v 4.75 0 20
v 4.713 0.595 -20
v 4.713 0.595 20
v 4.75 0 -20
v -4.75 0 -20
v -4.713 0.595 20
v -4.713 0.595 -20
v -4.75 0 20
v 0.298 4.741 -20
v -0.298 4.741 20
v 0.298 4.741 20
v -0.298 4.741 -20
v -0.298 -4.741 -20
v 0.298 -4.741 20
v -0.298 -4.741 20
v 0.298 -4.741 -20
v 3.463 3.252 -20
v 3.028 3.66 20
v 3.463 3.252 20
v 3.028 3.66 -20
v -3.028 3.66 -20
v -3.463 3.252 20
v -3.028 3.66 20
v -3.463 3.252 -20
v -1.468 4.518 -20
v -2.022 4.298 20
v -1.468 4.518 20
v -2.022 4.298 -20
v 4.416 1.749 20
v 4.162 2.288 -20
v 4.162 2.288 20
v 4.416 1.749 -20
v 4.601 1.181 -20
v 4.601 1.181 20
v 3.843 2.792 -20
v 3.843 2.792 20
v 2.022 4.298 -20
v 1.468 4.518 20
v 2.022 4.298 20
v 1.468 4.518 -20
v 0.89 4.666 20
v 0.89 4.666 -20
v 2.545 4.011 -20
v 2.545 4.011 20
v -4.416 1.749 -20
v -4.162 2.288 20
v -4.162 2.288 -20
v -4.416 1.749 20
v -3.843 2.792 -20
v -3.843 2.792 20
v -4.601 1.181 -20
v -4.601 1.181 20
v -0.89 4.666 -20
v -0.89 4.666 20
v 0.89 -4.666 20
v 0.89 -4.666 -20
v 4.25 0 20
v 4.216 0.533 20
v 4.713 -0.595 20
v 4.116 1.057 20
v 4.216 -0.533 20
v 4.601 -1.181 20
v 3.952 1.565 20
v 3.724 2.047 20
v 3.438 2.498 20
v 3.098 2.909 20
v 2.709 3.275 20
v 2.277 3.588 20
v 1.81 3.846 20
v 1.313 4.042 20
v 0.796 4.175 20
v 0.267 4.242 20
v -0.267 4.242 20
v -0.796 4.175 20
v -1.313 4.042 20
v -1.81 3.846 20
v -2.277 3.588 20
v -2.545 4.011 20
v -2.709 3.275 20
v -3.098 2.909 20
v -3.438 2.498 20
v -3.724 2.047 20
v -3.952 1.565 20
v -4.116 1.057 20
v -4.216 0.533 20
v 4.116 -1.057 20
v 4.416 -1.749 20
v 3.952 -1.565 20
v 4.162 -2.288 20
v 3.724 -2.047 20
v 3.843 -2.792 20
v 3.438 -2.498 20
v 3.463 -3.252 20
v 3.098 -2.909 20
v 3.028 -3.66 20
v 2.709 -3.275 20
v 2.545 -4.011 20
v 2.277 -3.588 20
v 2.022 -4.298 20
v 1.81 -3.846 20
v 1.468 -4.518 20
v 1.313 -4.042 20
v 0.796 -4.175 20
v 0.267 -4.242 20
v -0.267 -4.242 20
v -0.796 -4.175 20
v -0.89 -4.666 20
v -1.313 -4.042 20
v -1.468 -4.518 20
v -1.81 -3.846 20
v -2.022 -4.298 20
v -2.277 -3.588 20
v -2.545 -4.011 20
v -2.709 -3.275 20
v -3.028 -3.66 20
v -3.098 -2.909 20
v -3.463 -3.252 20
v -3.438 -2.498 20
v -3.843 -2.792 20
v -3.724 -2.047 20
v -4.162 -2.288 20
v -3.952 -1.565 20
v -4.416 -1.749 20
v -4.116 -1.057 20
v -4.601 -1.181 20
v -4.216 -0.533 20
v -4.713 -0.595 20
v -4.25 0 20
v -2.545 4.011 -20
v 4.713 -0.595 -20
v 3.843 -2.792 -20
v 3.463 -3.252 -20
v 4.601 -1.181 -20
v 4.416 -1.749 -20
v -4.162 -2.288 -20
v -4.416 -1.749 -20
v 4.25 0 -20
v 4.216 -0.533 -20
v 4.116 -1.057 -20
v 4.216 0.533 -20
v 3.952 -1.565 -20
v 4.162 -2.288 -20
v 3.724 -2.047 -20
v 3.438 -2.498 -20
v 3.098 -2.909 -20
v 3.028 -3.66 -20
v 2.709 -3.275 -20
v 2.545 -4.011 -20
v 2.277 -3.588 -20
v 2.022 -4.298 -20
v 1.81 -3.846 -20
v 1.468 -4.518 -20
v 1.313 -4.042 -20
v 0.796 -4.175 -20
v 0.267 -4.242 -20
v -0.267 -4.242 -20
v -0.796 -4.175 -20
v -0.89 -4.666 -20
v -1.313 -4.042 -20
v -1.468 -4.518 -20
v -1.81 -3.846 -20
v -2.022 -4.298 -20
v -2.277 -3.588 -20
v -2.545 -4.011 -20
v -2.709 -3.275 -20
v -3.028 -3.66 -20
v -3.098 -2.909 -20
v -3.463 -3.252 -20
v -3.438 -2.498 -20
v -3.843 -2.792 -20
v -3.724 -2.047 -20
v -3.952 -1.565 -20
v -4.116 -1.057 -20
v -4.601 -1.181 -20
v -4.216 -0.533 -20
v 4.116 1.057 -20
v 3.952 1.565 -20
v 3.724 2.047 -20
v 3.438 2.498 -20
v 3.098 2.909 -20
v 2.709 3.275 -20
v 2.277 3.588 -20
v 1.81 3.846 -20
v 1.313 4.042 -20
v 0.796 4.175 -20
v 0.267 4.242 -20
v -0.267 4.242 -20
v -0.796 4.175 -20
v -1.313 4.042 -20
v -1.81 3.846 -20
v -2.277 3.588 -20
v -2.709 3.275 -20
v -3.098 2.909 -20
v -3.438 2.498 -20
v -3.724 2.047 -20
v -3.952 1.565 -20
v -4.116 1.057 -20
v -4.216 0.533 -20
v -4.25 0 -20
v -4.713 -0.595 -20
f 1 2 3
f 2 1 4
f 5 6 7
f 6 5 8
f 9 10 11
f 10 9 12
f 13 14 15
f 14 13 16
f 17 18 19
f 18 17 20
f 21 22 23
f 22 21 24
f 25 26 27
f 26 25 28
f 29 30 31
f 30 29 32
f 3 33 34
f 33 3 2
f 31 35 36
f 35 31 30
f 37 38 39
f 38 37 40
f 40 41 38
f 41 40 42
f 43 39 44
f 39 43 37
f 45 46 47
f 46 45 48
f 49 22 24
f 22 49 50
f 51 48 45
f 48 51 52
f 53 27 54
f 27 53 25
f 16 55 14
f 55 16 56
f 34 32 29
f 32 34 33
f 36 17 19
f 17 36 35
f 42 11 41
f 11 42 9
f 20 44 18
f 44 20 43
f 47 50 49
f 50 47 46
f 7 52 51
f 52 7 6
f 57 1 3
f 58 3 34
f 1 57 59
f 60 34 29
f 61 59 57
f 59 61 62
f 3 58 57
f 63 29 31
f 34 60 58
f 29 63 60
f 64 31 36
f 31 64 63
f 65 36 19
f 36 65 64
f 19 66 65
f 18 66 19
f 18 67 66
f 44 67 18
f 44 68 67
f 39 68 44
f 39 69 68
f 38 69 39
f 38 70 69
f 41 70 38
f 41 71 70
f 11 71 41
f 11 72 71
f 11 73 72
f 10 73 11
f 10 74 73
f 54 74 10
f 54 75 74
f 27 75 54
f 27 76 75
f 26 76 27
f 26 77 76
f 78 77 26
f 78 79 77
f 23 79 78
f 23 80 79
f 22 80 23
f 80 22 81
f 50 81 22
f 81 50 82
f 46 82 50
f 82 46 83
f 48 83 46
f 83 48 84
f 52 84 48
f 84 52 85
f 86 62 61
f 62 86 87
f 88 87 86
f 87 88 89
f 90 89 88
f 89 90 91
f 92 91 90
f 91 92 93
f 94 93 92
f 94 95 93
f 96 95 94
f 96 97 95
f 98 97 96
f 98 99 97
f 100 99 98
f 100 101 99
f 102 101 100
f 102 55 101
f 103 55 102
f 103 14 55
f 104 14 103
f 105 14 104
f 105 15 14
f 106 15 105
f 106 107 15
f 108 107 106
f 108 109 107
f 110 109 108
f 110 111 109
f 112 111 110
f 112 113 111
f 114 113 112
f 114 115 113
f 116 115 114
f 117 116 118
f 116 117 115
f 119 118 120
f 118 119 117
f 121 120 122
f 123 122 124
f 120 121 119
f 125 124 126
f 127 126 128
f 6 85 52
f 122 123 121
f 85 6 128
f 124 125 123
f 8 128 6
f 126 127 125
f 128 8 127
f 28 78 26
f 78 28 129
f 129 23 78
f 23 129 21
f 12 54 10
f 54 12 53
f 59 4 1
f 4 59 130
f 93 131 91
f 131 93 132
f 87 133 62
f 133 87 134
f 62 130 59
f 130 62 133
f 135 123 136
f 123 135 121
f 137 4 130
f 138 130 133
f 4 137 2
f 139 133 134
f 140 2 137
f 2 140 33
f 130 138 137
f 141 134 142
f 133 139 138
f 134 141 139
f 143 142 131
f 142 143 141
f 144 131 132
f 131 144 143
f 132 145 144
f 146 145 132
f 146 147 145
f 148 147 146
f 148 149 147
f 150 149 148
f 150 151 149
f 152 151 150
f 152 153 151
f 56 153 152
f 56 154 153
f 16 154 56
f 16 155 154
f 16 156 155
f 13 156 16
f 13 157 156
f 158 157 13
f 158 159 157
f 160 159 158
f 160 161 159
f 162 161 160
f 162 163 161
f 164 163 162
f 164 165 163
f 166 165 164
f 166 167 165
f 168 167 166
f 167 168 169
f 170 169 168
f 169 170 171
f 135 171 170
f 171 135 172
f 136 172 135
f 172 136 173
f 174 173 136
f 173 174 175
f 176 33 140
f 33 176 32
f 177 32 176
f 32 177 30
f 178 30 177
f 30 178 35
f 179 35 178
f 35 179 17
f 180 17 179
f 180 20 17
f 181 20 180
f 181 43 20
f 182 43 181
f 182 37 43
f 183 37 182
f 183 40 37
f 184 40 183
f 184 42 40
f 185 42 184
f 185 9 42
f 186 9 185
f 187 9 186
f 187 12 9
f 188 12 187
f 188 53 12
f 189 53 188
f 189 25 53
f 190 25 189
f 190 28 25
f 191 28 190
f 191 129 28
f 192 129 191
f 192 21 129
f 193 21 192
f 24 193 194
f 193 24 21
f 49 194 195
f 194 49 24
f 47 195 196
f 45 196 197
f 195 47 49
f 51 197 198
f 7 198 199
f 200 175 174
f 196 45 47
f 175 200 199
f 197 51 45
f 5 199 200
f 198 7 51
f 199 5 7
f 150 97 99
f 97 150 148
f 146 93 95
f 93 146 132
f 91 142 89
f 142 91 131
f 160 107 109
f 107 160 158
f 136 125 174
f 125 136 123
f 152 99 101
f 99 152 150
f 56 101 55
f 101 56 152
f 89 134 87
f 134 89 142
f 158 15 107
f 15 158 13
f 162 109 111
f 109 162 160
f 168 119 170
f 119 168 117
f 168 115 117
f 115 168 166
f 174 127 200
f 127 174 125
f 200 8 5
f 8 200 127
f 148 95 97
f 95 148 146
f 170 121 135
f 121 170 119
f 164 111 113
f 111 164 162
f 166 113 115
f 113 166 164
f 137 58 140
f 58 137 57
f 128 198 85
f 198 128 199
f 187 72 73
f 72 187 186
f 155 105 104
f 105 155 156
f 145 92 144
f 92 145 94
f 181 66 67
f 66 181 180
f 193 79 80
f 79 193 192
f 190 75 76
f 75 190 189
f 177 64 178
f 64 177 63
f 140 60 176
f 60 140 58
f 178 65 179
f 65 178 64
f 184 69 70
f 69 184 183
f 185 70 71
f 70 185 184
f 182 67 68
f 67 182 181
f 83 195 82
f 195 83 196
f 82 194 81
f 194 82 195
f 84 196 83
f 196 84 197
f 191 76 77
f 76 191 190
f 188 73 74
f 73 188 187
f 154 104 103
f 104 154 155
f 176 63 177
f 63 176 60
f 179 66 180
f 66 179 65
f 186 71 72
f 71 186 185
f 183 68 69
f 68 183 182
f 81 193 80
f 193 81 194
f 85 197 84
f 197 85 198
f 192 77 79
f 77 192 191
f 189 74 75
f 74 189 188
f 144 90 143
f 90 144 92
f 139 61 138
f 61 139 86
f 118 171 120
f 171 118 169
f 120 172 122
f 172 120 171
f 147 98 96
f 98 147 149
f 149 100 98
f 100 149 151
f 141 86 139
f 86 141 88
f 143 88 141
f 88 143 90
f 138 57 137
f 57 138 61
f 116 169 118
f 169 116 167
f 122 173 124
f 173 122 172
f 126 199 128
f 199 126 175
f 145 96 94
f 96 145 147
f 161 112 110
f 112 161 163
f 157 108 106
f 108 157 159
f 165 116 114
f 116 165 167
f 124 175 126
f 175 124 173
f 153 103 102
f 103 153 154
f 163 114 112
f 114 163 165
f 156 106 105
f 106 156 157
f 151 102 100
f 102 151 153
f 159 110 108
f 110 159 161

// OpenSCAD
$fn = 50;


difference() {
	union() {
		translate(v = [0, 0, -20.0000000000]) {
			cylinder(h = 40, r = 4.7500000000);
		}
	}
	union() {
		translate(v = [0, 0, -100.0000000000]) {
			cylinder(h = 200, r = 4.2500000000);
		}
	}
}
